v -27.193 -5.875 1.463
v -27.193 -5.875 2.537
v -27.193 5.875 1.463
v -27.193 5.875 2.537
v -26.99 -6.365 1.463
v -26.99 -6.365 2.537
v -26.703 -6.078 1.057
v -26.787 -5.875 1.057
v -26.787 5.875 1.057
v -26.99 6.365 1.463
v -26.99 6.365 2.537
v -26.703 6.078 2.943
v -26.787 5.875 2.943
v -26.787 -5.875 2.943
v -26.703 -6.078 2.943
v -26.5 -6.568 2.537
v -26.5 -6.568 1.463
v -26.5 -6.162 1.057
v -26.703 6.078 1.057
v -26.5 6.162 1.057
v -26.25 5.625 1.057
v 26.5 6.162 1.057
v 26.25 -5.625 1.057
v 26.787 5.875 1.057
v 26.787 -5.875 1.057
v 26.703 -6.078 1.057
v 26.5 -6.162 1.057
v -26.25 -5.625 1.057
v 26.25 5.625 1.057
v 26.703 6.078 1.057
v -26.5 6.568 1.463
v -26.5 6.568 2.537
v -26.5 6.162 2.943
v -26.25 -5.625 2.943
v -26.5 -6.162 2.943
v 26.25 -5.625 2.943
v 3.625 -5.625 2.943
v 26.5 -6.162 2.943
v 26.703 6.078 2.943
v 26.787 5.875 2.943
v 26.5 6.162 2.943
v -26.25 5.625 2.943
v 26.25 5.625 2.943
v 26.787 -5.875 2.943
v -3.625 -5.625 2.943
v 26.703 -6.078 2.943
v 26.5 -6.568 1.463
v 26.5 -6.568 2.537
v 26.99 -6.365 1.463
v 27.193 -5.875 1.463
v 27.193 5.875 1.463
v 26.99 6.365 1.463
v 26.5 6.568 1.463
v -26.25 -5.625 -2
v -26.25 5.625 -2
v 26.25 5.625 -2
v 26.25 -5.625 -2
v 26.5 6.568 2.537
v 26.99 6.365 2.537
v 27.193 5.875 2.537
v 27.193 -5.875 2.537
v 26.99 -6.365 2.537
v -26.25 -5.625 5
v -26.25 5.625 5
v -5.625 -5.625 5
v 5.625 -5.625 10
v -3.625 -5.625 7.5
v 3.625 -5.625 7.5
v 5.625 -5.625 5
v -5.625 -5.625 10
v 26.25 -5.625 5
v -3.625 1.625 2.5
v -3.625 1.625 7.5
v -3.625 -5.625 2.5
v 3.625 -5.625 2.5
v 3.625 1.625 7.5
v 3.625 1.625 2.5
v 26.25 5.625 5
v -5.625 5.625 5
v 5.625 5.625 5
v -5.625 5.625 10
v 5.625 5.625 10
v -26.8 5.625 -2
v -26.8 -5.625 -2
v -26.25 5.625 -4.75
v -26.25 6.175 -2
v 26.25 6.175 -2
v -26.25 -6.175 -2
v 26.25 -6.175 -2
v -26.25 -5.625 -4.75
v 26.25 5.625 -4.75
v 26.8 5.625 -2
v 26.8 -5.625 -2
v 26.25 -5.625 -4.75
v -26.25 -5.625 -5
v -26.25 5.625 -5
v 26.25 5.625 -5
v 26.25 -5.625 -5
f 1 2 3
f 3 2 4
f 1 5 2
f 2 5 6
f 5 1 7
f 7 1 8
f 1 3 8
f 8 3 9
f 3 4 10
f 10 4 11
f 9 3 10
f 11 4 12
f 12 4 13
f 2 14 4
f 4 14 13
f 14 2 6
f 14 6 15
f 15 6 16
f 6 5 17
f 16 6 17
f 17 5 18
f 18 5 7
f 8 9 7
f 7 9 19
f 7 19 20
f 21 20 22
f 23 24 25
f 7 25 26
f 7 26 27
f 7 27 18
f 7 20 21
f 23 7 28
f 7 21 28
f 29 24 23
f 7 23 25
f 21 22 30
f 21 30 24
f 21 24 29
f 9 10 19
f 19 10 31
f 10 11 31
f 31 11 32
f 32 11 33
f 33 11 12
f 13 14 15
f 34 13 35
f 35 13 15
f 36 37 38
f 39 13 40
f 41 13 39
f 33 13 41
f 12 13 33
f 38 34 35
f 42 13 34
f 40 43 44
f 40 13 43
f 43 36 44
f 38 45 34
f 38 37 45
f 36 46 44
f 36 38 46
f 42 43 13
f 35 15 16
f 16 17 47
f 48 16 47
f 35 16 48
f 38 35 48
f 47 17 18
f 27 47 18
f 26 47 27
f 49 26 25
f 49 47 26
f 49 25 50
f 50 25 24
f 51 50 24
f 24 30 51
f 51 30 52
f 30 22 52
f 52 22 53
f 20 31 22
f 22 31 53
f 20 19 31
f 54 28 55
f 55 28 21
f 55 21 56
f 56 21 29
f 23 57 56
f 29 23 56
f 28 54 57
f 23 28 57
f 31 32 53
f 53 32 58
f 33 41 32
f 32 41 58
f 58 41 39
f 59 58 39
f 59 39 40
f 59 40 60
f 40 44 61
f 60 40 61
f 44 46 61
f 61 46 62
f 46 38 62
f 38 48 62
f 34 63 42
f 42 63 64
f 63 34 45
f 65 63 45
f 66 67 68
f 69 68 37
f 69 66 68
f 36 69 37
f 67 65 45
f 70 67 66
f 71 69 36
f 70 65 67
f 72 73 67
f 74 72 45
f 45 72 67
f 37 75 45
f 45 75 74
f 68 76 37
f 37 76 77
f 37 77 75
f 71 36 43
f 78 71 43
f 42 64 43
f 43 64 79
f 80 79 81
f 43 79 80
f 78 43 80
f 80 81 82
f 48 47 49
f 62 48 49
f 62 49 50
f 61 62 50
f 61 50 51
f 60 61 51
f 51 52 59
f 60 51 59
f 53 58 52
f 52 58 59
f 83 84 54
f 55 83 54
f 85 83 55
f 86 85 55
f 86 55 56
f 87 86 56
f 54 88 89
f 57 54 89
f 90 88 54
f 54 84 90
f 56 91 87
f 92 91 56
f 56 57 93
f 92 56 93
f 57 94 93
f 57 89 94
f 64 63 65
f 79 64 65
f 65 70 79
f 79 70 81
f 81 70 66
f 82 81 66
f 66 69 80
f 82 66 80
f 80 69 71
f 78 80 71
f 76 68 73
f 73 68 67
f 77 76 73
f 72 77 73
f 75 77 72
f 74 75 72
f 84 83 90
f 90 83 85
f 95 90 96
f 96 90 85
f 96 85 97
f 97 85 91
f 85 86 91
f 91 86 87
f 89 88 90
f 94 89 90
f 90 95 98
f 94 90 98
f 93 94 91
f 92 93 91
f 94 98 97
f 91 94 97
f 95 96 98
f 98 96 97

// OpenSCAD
// 55 x 12.5

height = 10;
flange = 0.5;
flange_height=3;

hole_w = 52.5; // 55
hole_h = 11.25; //12.5

conn_h = 5;

difference() {
	
	union() {
		cube([hole_w,hole_h,height],center=true);
		translate([0,0,-height/2+7])
			minkowski() {
				cube([hole_w+0.5,hole_h+0.5,0.5],center=true);
				sphere(r=0.75,$fn=8);
			}

		translate([0,0,height/2]) {
			translate([0,0,conn_h/2])
				cube([hole_h,hole_h,conn_h],center=true);
		}

		translate([0,0,-height/2+flange_height/2]) {
			union() {
				translate([-hole_w/2+1.25-flange,0,0])
					multmatrix([ [1, 0, -0.2, 0], 
								 [0, 1, 0, 0],
								 [0, 0, 1, 0],
								 [0, 0, 0, 1] ])
						cube([2,hole_h,flange_height],center=true);
				translate([+hole_w/2-1.25+flange,0,0])
					multmatrix([ [1, 0, 0.2, 0], 
								 [0, 1, 0, 0],
								 [0, 0, 1, 0],
								 [0, 0, 0, 1] ])
						cube([2,hole_h,flange_height],center=true);
				translate([0,+hole_h/2-1.25+flange,0])
					multmatrix([ [1, 0, 0, 0], 
								 [0, 1, 0.2, 0],
								 [0, 0, 1, 0],
								 [0, 0, 0, 1] ])
						cube([hole_w,2,flange_height],center=true);
				translate([0,-hole_h/2+1.25-flange,0])
					multmatrix([ [1, 0, 0, 0], 
								 [0, 1, -0.2, 0],
								 [0, 0, 1, 0],
								 [0, 0, 0, 1] ])
						cube([hole_w,2,flange_height],center=true);
			}
		}
	}
	translate([0,0,height/2]) {
		translate([0,-2,0])
			cube([hole_h-4,hole_h-4,5],center=true);
	}
}
